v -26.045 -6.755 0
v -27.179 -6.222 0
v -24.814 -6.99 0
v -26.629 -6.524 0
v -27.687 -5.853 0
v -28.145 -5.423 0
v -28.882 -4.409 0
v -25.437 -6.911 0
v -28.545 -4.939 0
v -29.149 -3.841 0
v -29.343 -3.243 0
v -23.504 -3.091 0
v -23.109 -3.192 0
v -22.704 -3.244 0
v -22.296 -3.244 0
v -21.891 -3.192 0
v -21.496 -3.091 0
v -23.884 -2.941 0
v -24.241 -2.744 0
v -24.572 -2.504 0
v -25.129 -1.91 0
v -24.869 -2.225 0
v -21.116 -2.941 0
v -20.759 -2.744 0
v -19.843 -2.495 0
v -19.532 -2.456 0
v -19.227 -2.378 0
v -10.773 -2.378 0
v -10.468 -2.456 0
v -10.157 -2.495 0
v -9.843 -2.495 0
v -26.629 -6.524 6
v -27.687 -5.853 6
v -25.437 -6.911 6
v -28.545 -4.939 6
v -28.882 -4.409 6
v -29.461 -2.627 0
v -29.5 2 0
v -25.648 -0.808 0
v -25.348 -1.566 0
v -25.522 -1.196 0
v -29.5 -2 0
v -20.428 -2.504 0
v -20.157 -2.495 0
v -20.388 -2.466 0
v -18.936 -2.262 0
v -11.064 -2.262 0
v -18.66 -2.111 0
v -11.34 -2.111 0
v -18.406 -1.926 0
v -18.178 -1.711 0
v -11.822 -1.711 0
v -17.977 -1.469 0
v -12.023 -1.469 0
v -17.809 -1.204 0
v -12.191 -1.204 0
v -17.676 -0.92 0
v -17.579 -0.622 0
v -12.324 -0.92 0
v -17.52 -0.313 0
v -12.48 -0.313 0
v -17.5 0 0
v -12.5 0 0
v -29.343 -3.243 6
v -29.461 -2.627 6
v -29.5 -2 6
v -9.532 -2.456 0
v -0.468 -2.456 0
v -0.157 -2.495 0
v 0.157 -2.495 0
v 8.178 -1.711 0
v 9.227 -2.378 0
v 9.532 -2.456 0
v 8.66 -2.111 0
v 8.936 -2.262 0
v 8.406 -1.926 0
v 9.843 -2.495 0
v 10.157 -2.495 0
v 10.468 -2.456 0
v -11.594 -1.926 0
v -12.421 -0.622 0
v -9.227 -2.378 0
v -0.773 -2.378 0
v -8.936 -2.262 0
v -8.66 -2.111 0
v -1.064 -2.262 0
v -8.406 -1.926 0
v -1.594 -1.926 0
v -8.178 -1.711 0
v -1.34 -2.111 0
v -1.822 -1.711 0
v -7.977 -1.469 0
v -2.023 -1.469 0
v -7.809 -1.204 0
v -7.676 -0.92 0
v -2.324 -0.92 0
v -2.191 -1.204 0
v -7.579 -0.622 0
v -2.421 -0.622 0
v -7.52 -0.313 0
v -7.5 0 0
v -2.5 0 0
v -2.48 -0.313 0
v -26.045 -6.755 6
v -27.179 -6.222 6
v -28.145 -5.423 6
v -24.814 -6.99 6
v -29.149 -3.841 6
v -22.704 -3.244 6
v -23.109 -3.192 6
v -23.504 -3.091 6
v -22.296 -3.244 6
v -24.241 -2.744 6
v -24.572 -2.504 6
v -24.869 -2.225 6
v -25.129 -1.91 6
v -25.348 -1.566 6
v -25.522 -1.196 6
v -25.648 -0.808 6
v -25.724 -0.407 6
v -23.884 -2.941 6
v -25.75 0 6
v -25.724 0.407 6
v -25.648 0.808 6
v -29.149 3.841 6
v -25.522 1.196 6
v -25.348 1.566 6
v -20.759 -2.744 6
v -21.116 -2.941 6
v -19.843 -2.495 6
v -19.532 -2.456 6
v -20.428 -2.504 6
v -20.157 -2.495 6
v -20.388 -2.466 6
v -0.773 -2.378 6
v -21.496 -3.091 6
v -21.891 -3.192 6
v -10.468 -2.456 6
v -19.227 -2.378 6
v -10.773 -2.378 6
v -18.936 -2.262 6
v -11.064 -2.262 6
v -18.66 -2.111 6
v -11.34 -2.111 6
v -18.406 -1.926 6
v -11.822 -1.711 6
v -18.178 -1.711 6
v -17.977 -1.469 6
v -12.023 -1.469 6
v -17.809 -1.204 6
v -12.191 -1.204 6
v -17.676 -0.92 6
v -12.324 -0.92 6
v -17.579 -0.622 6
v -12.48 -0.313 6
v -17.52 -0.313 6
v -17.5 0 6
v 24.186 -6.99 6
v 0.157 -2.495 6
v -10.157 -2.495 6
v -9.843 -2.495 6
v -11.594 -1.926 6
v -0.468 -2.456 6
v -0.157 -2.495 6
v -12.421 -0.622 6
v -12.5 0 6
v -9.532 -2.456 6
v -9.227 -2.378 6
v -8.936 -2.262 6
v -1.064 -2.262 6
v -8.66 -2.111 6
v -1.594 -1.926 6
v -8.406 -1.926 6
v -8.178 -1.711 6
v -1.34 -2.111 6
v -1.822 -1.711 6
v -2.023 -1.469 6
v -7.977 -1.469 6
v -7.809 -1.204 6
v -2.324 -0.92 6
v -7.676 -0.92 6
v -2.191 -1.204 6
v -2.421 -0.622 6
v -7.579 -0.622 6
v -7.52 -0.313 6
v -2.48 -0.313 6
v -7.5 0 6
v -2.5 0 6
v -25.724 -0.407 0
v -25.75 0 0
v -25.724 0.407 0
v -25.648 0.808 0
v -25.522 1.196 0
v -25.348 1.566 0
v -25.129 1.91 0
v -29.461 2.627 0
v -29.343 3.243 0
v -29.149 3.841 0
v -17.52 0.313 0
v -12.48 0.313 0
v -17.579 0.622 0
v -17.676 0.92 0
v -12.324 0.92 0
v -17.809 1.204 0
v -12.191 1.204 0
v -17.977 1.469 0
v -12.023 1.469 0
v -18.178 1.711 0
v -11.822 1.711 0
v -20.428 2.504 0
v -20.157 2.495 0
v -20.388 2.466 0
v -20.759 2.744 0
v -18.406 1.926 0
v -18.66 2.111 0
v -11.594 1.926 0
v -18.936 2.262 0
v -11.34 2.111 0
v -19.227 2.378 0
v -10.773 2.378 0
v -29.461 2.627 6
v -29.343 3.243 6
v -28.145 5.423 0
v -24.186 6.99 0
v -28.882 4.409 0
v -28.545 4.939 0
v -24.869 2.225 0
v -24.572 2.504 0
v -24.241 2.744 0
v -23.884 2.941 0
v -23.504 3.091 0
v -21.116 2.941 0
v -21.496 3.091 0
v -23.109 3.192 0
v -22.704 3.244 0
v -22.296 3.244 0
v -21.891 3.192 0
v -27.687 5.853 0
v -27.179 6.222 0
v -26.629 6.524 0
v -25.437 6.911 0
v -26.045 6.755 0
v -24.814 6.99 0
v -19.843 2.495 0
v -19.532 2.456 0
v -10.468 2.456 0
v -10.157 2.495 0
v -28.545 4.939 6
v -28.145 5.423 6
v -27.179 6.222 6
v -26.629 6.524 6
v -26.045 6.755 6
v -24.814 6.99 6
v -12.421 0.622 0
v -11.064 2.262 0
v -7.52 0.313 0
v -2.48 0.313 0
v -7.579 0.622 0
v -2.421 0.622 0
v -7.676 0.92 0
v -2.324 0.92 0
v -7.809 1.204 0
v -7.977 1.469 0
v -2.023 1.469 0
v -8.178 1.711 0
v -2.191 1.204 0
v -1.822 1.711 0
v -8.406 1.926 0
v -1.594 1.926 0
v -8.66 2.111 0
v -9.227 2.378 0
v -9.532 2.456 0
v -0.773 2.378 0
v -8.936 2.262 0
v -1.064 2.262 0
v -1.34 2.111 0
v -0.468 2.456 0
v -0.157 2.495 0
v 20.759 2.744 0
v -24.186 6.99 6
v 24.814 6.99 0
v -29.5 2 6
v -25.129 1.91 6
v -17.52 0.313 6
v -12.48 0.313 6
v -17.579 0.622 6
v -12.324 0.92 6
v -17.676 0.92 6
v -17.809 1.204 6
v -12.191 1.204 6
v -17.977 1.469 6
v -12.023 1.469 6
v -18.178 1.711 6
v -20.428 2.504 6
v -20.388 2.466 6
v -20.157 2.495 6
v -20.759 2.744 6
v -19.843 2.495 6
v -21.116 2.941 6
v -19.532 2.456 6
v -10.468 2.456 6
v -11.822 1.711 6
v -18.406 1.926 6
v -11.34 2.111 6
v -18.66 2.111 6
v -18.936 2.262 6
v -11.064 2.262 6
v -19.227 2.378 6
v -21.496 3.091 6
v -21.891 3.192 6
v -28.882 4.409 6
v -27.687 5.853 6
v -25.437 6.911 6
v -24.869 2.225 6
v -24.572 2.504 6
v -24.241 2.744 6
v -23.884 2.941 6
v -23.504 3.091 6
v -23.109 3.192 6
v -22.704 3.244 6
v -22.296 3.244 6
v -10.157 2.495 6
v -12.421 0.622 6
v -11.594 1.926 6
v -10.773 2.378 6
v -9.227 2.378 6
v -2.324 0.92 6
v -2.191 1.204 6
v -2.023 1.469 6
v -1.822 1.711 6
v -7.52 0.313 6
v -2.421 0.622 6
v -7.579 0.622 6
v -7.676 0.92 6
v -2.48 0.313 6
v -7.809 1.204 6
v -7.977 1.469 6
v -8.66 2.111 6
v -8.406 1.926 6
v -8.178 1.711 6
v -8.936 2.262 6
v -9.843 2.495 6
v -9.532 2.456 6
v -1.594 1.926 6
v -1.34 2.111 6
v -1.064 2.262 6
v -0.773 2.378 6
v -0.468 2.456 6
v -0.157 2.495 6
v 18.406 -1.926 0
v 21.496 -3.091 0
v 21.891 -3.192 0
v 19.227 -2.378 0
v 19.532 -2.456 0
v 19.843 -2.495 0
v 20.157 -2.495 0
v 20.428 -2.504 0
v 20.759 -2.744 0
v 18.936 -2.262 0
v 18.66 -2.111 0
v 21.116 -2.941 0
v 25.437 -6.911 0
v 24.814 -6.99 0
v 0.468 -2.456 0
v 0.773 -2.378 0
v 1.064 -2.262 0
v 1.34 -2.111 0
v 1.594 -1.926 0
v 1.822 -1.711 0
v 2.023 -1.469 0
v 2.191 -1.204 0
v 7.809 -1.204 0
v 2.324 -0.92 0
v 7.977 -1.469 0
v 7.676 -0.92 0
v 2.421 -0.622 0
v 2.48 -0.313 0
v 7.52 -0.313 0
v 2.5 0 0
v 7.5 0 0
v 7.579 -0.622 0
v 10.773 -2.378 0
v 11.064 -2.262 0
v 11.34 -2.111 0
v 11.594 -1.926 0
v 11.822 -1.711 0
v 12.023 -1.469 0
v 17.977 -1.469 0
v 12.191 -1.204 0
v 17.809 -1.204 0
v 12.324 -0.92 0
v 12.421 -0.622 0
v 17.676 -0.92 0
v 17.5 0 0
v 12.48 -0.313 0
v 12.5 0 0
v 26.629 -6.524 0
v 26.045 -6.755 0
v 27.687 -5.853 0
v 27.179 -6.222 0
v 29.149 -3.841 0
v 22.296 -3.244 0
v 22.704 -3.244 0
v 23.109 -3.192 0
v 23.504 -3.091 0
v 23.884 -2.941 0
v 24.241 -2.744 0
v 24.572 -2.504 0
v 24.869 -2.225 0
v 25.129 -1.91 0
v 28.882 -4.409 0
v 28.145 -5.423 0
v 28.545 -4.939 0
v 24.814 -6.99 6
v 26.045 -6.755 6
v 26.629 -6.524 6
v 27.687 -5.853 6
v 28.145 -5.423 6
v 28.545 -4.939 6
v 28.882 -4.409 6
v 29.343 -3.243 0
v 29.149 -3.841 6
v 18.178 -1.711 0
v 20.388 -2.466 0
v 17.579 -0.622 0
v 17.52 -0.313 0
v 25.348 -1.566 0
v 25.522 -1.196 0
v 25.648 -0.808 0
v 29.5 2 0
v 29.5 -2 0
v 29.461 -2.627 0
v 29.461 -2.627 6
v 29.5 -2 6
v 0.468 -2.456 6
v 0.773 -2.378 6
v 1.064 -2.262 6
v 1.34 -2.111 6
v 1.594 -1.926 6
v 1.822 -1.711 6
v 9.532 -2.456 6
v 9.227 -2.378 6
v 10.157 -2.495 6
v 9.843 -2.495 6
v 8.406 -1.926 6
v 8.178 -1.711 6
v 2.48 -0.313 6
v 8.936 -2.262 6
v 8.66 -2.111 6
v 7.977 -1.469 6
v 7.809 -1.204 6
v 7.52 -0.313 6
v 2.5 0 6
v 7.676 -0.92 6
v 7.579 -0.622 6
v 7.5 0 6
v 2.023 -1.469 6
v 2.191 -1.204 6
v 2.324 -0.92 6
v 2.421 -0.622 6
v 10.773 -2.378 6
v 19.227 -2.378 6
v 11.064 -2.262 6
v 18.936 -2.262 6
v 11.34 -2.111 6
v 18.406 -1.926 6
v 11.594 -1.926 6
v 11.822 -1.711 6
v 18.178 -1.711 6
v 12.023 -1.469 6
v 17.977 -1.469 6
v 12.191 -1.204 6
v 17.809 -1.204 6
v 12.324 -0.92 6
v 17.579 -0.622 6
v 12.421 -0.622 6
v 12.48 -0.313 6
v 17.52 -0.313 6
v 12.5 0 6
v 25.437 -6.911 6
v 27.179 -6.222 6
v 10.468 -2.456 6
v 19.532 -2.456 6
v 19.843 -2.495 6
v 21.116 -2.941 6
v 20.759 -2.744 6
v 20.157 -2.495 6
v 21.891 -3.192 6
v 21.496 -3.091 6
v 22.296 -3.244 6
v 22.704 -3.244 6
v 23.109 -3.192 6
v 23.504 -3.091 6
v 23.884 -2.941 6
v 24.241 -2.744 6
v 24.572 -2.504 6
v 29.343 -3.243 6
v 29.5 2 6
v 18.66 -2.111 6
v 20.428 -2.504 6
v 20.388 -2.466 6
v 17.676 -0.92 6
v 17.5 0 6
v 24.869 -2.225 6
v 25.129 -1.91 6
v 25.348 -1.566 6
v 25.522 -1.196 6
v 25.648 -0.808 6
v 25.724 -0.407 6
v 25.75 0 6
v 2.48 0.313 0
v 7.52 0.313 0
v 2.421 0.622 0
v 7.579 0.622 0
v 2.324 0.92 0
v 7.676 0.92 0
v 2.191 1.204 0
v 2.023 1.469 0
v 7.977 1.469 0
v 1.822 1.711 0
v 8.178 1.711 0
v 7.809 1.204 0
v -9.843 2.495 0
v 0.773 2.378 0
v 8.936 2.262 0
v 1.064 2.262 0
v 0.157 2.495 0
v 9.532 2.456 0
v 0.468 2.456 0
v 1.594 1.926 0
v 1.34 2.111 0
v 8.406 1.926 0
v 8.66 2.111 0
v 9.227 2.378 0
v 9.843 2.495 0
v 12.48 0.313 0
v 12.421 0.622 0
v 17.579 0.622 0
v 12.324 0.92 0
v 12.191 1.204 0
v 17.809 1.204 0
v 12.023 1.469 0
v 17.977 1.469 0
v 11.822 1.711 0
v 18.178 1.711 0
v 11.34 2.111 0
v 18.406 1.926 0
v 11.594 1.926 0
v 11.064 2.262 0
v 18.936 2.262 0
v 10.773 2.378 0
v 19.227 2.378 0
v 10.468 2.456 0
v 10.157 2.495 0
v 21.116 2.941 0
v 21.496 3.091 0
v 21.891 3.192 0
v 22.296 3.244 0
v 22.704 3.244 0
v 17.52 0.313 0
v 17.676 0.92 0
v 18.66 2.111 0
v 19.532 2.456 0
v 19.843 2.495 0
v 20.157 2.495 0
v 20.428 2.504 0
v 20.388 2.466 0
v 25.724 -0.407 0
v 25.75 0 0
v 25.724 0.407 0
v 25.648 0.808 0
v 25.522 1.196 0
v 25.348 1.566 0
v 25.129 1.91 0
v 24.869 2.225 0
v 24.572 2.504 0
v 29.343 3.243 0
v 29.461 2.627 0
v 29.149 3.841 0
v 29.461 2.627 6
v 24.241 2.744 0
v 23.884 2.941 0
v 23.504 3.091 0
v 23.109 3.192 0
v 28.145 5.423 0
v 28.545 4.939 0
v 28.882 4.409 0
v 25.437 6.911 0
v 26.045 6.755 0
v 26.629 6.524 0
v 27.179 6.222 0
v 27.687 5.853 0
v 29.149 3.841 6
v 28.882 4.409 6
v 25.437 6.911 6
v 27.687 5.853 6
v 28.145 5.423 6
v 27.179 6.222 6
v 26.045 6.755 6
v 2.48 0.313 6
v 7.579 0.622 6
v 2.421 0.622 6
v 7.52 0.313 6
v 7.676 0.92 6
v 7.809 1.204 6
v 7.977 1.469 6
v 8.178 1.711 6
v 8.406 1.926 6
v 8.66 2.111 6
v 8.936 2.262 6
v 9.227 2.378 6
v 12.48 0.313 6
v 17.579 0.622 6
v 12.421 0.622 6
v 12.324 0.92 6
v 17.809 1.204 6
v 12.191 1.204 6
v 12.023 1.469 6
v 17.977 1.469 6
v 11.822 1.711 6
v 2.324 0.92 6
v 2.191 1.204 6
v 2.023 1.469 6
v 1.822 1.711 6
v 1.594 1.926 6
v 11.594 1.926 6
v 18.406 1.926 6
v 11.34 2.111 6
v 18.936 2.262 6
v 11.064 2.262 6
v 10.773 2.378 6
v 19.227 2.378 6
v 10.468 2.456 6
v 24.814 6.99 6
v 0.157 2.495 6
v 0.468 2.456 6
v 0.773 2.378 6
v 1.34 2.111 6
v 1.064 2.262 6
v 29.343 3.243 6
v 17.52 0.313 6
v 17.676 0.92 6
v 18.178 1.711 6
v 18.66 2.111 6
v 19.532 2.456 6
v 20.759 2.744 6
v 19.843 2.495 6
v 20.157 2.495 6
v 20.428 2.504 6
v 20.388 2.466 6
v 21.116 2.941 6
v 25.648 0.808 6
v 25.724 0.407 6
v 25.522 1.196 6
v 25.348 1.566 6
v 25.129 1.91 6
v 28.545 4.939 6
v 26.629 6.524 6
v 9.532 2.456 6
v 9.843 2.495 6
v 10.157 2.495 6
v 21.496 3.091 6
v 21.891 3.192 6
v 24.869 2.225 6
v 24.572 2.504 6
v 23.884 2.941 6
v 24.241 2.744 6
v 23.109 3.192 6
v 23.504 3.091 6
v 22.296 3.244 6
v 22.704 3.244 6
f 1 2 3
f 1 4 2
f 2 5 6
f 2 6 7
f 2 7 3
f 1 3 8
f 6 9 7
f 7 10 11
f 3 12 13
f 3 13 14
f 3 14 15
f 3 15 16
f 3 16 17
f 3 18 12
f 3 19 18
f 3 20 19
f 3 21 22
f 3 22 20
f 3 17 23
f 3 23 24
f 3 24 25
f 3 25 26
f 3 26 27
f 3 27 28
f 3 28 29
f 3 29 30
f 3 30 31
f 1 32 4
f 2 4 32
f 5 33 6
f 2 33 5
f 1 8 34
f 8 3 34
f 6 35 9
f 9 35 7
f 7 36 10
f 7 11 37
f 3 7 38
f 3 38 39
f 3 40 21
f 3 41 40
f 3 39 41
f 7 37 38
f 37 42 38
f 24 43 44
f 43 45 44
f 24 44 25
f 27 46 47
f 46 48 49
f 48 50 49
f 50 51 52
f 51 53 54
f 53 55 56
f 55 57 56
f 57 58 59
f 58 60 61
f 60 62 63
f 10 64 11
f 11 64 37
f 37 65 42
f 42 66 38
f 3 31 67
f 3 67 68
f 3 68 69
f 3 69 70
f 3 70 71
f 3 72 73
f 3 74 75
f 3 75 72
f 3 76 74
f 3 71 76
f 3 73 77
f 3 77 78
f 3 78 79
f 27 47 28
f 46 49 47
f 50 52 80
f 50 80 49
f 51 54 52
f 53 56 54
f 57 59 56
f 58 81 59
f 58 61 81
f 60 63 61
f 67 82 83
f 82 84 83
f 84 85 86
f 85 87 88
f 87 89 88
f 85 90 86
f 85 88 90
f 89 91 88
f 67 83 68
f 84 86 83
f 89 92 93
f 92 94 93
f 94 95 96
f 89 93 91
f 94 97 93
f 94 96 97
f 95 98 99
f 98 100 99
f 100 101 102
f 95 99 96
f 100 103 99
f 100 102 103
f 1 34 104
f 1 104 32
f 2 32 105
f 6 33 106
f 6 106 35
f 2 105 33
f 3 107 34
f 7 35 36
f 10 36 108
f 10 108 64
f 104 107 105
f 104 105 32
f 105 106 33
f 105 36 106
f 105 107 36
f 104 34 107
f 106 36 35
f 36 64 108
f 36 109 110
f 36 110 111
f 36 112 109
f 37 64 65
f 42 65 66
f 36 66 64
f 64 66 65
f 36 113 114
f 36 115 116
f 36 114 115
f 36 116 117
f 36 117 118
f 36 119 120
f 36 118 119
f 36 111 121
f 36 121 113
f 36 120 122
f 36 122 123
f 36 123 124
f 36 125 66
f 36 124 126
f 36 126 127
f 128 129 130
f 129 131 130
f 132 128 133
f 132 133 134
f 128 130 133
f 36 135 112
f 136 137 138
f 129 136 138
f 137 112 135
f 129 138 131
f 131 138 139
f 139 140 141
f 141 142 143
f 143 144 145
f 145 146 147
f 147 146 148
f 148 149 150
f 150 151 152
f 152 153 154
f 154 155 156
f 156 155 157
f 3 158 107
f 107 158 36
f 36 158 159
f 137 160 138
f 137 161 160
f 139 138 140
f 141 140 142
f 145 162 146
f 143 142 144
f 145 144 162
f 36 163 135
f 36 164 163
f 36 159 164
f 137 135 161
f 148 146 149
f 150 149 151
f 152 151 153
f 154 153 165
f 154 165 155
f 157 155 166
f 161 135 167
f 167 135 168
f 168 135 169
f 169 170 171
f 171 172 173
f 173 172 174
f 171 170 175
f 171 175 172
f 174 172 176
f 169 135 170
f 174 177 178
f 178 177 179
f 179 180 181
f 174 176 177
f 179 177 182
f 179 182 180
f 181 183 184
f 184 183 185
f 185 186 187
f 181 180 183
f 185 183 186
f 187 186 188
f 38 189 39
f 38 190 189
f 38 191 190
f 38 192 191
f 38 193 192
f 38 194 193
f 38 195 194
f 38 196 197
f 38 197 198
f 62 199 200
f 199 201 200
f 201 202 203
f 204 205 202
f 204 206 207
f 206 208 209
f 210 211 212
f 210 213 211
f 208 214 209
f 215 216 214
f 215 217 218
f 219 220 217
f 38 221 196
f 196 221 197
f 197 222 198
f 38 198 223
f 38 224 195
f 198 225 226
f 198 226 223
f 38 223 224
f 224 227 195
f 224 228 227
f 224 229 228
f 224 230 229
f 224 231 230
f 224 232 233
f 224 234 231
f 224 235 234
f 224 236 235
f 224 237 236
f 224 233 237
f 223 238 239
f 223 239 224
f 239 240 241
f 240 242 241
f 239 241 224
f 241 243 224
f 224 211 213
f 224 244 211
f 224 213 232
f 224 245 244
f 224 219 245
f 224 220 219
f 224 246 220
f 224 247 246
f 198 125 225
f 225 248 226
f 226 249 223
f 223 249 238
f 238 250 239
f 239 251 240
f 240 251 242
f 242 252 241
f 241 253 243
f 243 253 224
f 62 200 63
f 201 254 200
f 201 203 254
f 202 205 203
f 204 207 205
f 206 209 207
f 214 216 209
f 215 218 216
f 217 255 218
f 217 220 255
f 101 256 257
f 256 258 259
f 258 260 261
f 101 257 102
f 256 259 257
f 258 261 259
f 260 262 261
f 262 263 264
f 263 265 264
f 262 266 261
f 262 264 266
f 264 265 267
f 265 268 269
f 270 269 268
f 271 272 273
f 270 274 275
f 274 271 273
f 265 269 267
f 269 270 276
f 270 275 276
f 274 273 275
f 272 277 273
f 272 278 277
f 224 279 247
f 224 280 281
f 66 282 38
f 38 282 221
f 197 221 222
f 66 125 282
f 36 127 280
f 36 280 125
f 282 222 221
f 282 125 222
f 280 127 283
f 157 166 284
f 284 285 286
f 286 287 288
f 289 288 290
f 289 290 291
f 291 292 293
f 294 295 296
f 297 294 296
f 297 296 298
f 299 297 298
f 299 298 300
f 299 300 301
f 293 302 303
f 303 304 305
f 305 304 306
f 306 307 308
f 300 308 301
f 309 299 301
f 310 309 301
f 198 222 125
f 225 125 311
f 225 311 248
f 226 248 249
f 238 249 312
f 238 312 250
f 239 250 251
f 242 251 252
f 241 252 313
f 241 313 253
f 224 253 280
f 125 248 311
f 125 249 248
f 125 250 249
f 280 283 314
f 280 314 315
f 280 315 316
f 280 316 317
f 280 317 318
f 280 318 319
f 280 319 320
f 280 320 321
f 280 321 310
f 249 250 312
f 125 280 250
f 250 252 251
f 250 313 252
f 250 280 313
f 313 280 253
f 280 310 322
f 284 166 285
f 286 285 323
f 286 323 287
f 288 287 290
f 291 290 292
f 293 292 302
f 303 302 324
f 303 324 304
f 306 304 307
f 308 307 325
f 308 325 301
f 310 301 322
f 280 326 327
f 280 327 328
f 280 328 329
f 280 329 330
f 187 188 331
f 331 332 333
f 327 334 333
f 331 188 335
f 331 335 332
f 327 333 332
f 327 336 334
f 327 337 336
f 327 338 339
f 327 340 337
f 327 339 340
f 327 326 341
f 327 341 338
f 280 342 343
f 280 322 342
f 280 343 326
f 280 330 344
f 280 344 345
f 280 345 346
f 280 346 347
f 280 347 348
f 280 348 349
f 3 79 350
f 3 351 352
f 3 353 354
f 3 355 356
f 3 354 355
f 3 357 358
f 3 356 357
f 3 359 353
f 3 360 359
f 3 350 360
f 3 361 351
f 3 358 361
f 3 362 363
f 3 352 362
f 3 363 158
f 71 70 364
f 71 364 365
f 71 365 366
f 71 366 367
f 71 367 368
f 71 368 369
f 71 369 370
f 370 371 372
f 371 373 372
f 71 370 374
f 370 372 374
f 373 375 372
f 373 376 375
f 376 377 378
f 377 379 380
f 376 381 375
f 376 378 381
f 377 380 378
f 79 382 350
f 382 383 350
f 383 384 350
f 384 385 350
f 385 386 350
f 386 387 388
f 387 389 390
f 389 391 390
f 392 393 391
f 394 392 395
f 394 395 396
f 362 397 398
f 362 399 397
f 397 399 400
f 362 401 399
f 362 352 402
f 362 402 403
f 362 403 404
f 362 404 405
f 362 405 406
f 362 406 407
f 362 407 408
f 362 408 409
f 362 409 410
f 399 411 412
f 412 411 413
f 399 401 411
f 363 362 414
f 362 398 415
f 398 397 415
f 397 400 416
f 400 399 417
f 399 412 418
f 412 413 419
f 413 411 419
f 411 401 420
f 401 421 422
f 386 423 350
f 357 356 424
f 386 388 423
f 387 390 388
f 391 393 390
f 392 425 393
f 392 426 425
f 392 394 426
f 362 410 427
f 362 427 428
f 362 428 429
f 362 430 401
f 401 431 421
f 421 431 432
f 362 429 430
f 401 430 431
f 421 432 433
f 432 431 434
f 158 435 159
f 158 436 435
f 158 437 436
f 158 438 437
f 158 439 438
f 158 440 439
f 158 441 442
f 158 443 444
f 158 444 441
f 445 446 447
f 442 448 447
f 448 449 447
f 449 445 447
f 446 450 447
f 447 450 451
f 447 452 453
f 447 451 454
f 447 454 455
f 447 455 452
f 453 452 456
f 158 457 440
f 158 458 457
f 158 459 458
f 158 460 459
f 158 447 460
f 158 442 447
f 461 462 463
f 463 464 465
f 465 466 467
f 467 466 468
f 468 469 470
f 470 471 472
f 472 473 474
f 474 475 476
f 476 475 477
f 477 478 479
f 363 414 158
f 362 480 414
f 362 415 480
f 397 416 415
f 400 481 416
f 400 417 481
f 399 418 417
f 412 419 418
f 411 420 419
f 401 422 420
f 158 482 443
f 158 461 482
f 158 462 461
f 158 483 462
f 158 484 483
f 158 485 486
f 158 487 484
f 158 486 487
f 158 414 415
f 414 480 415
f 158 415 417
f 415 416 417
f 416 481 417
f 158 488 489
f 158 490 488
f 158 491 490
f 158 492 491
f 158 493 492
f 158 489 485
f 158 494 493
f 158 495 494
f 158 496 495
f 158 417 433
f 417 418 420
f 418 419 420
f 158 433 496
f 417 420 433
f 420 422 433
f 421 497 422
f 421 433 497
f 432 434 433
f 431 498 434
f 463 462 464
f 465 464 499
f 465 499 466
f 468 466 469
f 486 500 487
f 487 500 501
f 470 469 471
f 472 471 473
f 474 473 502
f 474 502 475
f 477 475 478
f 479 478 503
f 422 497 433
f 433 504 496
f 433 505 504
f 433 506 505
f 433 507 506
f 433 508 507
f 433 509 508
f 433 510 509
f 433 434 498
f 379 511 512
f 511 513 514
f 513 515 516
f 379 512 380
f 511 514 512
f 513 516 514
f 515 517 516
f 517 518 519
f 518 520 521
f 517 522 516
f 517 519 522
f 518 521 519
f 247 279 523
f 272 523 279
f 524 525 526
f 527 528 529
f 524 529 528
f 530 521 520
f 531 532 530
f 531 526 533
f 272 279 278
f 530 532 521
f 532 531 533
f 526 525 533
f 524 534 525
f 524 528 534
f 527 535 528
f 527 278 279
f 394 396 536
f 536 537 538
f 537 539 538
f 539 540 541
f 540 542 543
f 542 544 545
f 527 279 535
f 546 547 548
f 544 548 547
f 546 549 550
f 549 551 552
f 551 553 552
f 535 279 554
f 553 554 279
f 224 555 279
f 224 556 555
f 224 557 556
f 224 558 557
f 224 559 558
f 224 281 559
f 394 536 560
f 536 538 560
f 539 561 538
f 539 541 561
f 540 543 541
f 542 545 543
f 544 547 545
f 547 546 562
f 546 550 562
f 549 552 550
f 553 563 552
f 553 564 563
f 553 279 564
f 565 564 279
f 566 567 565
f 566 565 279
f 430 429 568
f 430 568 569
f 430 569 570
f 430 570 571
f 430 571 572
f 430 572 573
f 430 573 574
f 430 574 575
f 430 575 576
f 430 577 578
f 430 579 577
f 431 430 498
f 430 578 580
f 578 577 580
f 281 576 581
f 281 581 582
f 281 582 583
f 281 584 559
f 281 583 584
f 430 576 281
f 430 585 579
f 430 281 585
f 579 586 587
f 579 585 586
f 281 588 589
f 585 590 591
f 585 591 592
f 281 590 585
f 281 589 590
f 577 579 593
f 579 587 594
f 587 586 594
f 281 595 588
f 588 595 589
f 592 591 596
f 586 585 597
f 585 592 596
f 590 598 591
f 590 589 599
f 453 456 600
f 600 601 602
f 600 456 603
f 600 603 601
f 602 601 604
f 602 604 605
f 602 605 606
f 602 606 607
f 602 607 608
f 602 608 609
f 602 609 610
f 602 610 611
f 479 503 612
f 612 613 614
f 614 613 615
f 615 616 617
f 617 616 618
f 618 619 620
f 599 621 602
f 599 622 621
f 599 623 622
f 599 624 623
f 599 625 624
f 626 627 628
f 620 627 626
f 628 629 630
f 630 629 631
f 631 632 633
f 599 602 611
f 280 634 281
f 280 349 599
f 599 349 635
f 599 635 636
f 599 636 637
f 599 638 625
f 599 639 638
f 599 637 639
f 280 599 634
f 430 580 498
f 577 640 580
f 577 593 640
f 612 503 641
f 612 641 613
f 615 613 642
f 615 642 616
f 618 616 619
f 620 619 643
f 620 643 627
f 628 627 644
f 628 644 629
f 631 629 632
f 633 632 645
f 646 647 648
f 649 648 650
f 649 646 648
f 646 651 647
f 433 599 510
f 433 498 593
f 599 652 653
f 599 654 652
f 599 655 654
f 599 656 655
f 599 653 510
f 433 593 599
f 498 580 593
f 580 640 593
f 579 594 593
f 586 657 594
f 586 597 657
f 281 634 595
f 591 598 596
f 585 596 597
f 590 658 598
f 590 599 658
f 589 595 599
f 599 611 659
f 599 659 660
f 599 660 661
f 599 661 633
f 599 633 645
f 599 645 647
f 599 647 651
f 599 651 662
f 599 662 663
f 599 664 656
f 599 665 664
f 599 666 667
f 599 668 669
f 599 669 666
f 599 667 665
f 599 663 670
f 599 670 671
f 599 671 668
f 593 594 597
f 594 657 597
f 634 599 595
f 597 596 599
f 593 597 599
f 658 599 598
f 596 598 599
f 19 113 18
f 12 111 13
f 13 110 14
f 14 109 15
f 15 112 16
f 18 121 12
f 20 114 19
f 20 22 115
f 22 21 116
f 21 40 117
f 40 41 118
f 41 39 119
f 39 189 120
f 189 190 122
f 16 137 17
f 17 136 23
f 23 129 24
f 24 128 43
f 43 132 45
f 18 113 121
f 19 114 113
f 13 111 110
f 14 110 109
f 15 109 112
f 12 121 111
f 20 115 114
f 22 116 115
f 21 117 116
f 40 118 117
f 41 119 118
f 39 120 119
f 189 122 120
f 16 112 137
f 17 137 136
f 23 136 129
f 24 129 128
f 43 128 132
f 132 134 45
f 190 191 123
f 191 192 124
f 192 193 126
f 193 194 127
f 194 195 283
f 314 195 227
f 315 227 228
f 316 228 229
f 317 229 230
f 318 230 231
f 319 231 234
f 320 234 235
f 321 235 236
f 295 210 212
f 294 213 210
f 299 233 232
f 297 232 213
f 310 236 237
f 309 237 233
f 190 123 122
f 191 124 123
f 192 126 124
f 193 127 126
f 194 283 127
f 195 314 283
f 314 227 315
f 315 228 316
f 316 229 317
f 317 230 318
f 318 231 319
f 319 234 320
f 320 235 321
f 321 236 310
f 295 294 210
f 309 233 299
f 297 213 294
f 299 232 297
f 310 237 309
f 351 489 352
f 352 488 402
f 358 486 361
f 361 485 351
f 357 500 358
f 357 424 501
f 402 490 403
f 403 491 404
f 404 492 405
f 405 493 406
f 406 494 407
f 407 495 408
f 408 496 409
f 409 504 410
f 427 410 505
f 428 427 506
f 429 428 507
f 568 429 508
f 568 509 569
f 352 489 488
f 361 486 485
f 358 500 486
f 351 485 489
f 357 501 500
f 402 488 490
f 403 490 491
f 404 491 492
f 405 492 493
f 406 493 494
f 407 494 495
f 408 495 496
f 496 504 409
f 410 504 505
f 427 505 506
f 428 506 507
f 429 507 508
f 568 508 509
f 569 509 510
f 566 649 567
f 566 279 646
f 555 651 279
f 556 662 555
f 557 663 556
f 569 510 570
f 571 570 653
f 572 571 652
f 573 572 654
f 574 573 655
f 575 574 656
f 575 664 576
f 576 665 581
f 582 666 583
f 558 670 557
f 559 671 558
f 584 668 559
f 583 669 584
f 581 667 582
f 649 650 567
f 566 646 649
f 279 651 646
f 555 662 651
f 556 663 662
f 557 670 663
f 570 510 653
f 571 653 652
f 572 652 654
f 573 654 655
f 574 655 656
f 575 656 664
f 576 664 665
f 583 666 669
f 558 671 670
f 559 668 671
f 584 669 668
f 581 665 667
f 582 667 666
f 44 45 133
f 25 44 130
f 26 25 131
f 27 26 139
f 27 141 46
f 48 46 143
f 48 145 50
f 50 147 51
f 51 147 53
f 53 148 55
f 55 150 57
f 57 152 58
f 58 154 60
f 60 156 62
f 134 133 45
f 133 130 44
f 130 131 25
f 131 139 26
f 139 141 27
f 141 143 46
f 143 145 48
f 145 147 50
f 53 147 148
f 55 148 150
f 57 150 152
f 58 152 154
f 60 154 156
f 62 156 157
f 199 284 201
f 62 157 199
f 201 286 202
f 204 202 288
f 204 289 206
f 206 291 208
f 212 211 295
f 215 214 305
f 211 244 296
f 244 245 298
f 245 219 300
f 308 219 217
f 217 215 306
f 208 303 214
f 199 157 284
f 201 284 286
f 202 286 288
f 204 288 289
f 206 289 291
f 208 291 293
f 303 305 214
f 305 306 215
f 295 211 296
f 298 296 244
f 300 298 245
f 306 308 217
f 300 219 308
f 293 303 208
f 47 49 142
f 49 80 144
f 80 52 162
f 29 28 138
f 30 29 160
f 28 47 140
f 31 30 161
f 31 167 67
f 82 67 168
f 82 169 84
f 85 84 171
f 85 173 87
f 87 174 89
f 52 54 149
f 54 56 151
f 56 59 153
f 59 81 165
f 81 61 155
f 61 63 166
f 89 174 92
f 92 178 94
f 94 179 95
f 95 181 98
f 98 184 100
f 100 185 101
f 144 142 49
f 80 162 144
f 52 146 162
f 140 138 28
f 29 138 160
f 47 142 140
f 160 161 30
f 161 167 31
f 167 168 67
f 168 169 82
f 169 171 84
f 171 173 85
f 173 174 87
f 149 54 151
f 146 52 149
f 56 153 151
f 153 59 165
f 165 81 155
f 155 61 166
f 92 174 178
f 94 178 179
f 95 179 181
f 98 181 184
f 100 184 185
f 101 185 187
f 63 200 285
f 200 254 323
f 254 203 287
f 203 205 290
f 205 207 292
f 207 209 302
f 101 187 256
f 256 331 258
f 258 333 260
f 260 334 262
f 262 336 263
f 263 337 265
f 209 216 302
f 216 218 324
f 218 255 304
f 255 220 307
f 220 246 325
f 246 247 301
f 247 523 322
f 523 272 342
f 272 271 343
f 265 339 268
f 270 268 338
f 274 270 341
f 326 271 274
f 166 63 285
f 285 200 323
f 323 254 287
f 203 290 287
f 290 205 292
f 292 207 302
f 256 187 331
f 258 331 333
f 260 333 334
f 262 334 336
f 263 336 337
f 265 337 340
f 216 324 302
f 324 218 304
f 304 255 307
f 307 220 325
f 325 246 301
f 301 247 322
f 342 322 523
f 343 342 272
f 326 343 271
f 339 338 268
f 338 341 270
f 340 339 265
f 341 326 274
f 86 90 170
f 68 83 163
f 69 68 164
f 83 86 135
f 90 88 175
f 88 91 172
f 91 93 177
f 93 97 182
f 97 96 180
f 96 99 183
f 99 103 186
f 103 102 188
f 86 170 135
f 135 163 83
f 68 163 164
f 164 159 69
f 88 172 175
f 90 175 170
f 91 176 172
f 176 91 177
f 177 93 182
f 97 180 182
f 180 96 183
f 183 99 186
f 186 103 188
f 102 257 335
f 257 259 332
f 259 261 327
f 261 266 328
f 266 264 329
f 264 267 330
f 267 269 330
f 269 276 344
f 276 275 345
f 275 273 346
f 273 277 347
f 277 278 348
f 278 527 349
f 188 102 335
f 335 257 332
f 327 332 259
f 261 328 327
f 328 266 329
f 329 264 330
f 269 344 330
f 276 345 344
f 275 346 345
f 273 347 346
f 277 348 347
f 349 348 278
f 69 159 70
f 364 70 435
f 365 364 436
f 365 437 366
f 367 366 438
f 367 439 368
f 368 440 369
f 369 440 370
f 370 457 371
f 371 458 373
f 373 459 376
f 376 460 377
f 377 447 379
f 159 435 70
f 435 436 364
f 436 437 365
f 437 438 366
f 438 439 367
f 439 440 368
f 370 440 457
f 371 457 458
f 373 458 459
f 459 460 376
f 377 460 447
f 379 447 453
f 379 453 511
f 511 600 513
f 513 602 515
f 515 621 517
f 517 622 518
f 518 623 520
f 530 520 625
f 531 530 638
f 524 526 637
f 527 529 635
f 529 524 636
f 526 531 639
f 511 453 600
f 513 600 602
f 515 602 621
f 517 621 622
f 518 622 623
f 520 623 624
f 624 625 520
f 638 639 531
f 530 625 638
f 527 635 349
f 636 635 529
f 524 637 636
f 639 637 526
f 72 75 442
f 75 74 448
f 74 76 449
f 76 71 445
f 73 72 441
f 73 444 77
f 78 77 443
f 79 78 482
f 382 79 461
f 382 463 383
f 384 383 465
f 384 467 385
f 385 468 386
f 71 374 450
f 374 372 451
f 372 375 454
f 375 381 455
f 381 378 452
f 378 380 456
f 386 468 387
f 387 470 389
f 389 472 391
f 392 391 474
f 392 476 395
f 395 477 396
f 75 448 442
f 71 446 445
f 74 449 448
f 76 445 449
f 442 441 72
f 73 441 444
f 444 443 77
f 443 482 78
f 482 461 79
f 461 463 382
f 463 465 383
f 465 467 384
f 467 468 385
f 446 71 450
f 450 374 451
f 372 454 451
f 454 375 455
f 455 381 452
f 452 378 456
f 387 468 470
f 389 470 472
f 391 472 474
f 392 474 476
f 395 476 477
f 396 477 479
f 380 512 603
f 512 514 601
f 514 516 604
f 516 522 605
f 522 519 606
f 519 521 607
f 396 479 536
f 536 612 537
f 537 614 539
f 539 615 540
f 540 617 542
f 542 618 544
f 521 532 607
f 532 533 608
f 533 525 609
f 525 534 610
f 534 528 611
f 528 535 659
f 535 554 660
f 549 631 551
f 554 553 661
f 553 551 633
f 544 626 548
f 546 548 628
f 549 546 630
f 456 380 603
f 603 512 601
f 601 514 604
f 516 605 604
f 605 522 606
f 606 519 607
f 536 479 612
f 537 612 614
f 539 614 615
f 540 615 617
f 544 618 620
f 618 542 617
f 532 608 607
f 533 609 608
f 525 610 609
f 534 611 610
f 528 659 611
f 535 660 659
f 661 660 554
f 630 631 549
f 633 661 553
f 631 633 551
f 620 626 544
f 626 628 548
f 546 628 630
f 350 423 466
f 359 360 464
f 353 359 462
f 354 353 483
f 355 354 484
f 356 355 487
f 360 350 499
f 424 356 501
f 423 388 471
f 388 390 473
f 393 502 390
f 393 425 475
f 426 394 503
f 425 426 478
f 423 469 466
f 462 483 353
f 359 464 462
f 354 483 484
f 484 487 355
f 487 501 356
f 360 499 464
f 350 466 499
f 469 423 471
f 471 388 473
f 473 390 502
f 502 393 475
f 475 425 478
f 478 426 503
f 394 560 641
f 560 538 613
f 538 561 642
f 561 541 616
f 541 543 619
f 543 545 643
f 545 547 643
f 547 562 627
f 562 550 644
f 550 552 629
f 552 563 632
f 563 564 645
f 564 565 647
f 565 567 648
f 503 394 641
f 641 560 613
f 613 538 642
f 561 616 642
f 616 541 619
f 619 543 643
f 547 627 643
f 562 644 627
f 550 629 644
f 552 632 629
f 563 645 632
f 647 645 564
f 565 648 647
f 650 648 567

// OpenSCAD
$fn = 50;

difference() {
	union() {
		hull() {
			translate(v = [-24.5, 2.0, 0]) {
				cylinder(h = 6, r = 5);
			}
			translate(v = [24.5, 2.0, 0]) {
				cylinder(h = 6, r = 5);
			}
			translate(v = [-24.5, -2.0, 0]) {
				cylinder(h = 6, r = 5);
			}
			translate(v = [24.5, -2.0, 0]) {
				cylinder(h = 6, r = 5);
			}
		}
	}
	union() {
		translate(v = [-22.5, 0.0, -100.0]) {
			cylinder(h = 200, r = 3.25);
		}
		translate(v = [22.5, 0.0, -100.0]) {
			cylinder(h = 200, r = 3.25);
		}
		translate(v = [-22.5, 0.0, -100.0]) {
			cylinder(h = 200, r = 1.8);
		}
		translate(v = [22.5, 0.0, -100.0]) {
			cylinder(h = 200, r = 1.8);
		}
		translate(v = [-20.0, 0, 0.0]) {
			cylinder(h = 6, r = 2.5);
		}
		translate(v = [-10.0, 0, 0.0]) {
			cylinder(h = 6, r = 2.5);
		}
		cylinder(h = 6, r = 2.5);
		translate(v = [10.0, 0, 0.0]) {
			cylinder(h = 6, r = 2.5);
		}
		translate(v = [20.0, 0, 0.0]) {
			cylinder(h = 6, r = 2.5);
		}
	}
}
